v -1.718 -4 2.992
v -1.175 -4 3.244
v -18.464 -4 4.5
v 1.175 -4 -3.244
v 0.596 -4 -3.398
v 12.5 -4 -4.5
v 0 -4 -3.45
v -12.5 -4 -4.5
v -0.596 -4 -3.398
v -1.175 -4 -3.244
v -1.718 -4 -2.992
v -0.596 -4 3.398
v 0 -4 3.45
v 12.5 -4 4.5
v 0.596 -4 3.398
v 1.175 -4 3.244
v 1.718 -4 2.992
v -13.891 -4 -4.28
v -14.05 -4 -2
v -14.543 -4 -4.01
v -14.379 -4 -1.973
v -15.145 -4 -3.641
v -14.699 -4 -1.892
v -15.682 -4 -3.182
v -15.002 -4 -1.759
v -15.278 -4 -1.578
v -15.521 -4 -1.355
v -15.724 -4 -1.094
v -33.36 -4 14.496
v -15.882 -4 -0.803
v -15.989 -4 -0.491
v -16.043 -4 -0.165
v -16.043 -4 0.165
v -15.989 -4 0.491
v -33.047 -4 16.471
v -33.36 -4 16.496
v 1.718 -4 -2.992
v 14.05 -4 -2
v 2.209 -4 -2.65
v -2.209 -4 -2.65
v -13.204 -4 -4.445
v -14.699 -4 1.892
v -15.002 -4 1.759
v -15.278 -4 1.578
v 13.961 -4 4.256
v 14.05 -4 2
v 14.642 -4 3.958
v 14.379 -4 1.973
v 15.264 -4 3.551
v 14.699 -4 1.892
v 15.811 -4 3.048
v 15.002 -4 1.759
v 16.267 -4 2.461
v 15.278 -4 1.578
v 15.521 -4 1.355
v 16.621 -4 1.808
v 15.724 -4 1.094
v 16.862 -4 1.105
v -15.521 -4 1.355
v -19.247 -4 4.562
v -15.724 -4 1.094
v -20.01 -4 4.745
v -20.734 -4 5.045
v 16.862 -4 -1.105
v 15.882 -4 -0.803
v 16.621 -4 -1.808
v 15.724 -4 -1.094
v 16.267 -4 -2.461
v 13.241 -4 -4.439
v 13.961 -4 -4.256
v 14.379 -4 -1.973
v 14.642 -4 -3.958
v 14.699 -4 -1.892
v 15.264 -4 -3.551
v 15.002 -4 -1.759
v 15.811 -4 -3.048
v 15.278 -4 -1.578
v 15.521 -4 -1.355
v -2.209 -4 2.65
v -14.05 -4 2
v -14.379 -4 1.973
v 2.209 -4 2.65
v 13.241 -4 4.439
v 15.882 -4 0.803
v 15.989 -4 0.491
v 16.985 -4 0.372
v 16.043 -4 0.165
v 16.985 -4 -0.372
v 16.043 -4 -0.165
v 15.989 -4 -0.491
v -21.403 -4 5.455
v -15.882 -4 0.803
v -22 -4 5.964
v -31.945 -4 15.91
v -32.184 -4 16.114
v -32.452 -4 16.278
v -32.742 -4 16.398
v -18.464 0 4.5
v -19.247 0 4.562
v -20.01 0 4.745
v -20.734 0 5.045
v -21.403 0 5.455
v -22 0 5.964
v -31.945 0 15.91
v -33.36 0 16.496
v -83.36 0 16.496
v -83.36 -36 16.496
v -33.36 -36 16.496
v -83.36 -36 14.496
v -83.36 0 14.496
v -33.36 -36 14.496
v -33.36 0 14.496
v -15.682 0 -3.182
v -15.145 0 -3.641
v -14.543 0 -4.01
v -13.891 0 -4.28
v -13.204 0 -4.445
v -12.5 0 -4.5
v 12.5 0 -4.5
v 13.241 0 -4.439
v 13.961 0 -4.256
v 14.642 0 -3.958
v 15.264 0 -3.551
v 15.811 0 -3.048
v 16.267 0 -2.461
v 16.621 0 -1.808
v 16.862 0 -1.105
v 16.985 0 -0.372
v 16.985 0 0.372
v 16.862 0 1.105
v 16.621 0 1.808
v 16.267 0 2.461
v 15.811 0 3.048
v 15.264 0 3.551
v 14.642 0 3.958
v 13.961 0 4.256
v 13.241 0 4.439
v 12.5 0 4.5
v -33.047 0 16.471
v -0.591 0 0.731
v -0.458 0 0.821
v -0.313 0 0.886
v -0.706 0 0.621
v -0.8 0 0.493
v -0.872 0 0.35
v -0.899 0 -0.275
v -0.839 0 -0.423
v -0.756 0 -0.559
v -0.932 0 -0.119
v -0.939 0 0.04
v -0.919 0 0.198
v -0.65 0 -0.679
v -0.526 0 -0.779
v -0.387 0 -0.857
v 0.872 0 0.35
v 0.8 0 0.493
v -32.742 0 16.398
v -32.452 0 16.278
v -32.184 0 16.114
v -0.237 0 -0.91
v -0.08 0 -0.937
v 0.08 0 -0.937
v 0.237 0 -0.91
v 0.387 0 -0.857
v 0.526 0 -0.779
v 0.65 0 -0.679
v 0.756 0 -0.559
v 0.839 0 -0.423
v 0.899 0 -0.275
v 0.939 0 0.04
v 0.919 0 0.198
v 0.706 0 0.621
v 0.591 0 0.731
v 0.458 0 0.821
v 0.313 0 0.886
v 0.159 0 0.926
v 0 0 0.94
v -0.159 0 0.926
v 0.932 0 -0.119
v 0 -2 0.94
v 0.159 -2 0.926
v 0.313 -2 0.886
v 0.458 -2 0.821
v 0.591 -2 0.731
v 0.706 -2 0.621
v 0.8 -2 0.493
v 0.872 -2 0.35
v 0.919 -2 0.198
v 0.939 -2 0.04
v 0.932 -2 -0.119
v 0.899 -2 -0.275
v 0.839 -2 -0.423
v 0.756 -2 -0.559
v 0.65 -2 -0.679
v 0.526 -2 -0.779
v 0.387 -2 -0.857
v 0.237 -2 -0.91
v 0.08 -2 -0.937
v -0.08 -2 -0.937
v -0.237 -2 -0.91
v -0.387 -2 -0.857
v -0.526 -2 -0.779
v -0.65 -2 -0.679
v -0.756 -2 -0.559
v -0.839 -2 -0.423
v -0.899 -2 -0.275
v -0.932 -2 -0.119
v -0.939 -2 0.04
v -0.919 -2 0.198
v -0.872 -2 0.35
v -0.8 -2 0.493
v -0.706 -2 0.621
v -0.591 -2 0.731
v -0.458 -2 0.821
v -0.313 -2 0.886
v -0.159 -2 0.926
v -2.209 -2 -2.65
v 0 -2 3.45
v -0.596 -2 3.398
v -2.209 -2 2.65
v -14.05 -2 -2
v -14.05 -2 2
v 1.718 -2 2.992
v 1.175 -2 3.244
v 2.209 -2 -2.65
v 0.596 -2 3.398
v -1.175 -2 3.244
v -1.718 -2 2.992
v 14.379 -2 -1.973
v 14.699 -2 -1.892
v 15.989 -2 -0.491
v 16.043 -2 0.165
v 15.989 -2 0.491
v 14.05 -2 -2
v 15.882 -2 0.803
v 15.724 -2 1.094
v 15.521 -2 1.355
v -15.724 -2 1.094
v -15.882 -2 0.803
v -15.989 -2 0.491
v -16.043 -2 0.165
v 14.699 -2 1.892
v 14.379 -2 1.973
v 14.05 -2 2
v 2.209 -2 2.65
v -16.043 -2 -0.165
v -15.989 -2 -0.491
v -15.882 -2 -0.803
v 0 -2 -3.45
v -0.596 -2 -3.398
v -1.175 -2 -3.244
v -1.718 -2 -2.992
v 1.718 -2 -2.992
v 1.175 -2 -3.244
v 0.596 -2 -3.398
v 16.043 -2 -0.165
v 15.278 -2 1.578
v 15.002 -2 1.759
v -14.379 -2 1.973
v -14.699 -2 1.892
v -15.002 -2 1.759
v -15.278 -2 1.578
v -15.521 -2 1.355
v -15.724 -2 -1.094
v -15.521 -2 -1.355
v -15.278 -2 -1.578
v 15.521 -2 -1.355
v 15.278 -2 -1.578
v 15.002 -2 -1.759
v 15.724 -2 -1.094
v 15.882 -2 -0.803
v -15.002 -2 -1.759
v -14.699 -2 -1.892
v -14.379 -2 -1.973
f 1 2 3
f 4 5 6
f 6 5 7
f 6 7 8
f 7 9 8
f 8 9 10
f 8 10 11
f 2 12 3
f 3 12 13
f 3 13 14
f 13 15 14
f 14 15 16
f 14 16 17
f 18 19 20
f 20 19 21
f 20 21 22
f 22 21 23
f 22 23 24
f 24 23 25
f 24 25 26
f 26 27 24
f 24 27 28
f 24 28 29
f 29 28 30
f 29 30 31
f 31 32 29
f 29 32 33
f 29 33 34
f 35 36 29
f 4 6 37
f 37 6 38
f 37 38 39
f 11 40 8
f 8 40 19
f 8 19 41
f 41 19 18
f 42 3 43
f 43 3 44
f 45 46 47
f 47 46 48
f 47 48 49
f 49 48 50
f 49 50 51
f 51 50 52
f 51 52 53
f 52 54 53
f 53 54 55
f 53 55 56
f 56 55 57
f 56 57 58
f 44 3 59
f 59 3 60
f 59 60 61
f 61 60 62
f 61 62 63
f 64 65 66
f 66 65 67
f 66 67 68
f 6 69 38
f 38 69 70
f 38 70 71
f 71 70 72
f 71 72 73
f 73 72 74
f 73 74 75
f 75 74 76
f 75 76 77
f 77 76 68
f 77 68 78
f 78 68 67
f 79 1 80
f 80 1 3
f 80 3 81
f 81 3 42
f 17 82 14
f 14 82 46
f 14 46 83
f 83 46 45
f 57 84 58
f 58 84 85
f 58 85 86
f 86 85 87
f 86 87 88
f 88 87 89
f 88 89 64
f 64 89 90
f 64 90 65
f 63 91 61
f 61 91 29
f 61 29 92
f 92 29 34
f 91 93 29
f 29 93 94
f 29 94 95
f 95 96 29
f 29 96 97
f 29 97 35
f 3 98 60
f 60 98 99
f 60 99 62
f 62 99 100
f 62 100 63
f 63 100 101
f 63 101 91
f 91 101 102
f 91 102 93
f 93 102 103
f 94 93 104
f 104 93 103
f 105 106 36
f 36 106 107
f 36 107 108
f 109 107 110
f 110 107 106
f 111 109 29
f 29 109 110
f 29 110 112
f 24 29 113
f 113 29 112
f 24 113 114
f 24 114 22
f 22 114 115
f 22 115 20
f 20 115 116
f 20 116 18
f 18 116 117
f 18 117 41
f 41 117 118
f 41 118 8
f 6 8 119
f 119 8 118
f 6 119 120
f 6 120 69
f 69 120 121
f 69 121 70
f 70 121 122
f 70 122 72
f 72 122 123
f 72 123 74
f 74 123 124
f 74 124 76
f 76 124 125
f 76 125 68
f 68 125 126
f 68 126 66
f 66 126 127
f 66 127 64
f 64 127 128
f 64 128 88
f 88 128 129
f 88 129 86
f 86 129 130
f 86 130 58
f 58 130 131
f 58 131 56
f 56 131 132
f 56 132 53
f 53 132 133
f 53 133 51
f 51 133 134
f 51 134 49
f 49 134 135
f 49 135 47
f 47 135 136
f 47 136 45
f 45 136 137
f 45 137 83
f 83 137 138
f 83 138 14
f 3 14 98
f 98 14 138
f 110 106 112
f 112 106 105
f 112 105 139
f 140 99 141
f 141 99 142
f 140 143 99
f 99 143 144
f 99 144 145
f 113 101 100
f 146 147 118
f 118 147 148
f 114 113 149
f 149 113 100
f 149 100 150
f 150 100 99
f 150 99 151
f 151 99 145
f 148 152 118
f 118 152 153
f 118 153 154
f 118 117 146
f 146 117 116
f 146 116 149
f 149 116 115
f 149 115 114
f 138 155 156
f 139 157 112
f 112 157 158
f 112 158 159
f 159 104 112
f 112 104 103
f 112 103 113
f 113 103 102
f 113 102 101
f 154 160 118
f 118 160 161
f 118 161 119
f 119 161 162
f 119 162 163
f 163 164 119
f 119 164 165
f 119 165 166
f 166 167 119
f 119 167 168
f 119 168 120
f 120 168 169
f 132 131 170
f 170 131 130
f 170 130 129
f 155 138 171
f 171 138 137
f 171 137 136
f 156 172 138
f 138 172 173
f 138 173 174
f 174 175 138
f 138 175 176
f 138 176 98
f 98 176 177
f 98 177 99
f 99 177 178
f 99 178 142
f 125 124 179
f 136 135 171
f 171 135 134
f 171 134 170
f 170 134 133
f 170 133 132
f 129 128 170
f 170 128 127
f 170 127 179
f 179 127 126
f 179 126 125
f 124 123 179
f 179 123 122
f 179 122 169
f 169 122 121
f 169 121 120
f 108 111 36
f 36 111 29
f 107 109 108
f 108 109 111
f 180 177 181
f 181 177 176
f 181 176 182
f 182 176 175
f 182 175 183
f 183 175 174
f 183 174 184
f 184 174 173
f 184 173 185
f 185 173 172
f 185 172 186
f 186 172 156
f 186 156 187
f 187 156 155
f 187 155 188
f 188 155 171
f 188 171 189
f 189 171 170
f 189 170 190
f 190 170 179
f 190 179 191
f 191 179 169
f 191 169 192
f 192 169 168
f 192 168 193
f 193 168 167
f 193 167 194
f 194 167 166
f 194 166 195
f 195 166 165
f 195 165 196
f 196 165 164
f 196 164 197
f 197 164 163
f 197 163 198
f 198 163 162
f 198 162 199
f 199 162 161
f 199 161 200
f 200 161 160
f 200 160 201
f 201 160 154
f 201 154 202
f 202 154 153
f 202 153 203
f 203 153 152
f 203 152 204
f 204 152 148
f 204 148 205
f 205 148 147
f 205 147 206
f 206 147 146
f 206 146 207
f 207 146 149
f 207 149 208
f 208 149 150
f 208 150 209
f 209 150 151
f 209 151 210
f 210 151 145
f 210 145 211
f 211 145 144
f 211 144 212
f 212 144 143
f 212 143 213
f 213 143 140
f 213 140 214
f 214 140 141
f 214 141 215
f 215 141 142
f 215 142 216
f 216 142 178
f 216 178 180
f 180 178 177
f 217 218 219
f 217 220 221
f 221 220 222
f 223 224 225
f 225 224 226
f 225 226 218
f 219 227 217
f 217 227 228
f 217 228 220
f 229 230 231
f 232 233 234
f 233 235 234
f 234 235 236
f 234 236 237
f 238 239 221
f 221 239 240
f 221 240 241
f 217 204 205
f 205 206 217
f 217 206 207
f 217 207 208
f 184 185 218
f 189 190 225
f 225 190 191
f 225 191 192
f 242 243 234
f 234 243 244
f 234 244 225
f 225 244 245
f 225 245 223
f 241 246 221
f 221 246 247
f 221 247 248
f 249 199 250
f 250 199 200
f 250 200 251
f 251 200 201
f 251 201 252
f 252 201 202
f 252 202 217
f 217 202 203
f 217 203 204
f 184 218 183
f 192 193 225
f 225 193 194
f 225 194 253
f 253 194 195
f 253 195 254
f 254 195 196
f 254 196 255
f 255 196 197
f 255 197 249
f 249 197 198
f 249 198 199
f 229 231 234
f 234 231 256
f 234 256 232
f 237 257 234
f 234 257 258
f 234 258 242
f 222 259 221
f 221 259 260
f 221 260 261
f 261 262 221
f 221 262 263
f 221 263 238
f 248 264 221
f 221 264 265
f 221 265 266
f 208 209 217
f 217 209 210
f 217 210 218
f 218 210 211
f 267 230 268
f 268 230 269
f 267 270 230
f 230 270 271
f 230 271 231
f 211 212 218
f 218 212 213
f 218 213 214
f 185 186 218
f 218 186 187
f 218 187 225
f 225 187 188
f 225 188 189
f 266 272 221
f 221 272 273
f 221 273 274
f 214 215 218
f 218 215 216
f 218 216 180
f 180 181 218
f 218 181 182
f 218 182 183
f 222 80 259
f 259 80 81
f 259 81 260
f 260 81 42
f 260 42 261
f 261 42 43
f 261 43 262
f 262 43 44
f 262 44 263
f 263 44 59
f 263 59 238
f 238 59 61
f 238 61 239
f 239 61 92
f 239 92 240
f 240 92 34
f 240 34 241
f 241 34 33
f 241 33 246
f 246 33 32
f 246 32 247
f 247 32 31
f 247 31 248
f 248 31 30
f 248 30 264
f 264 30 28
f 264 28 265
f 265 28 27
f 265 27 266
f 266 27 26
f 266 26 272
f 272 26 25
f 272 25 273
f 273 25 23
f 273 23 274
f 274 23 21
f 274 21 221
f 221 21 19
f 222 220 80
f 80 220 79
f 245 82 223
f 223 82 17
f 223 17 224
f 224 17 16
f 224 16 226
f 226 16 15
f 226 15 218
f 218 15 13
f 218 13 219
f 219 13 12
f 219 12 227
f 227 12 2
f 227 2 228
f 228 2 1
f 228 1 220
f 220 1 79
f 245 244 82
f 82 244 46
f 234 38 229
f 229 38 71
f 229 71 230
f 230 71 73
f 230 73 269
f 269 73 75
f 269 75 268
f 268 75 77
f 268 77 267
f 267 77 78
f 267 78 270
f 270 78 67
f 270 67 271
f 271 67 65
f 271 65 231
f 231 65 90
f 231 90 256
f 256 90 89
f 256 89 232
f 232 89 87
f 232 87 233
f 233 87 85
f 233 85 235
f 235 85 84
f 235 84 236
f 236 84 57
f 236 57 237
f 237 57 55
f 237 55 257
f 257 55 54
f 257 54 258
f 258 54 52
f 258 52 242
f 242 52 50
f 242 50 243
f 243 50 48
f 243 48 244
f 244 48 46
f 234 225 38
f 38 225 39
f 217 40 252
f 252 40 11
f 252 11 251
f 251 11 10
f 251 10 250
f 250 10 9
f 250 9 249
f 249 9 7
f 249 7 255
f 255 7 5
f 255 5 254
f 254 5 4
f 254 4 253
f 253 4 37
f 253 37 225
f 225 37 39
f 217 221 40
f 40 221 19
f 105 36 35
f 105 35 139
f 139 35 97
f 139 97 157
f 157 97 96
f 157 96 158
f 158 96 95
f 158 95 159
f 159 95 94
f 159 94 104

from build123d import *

# Parameters (mm, degrees)
RESSALTO_EXTRUS_O1_DEPTH = 4
ESBO_O2_W                = 50
ESBO_O2_H                = 2
RESSALTO_EXTRUS_O2_DEPTH = 32
ESBO_O3_R                = 0.94
CORTE_EXTRUS_O1_DEPTH    = 37
CORTE_EXTRUS_O2_DEPTH    = 2
FILETE1_R                = 2


with BuildPart() as part:
    # Esboço1 → Ressalto-extrusão1 (new body)
    with BuildSketch(Plane(origin=(0, 0, 0), x_dir=(1, 0, 0), z_dir=(0, 1, 0))):
        with BuildLine():
            Line((12.5, 4.5), (-12.5, 4.5))
            ThreePointArc((-12.5, 4.5), (-14.222075446, 4.157457896), (-15.681980515, 3.181980515))
            Line((-15.681980515, 3.181980515), (-33.359650045, -14.495689014))
            Line((-33.359650045, -14.495689014), (-83.359650045, -14.495689014))
            Line((-83.359650045, -14.495689014), (-83.359650045, -16.495689014))
            Line((-83.359650045, -16.495689014), (-32.53122292, -16.495689014))
            Line((-32.53122292, -16.495689014), (-22, -5.964466094))
            ThreePointArc((-22, -5.964466094), (-20.377883256, -4.880602337), (-18.464466094, -4.5))
            Line((-18.464466094, -4.5), (12.5, -4.5))
            ThreePointArc((12.5, -4.5), (17, 0), (12.5, 4.5))
        make_face()
    extrude(amount=-RESSALTO_EXTRUS_O1_DEPTH)

    # Esboço2 → Ressalto-extrusão2 (add)
    with BuildSketch(Plane.XZ.offset(4)):
        with Locations((-58.359650045, 15.495689014)):
            Rectangle(ESBO_O2_W, ESBO_O2_H)
    extrude(amount=RESSALTO_EXTRUS_O2_DEPTH)

    # Esboço3 → Corte-extrusão1 (cut, through all)
    with BuildSketch(Plane(origin=(0, 0, 0), x_dir=(1, 0, 0), z_dir=(0, 1, 0))):
        Circle(ESBO_O3_R)
    extrude(amount=-CORTE_EXTRUS_O1_DEPTH, mode=Mode.SUBTRACT)

    # Esboço6 → Corte-extrusão2 (cut)
    with BuildSketch(Plane(origin=(0, -4, 0), x_dir=(1, 0, 0), z_dir=(0, 1, 0))):
        with BuildLine():
            Line((-14.05, 2), (-2.209072203, 2.65))
            ThreePointArc((-2.209072203, 2.65), (0, 3.45), (2.209072203, 2.65))
            Line((2.209072203, 2.65), (14.05, 2))
            ThreePointArc((14.05, 2), (16.05, 0), (14.05, -2))
            Line((14.05, -2), (2.209072203, -2.65))
            ThreePointArc((2.209072203, -2.65), (0, -3.45), (-2.209072203, -2.65))
            Line((-2.209072203, -2.65), (-14.05, -2))
            ThreePointArc((-14.05, -2), (-16.05, 0), (-14.05, 2))
        make_face()
    extrude(amount=CORTE_EXTRUS_O2_DEPTH, mode=Mode.SUBTRACT)

    # Filete1
    filete1_edges = [part.edges().sort_by_distance(p)[0] for p in [
        (-32.53122292, -2, 16.495689014),
    ]]
    fillet(filete1_edges, radius=FILETE1_R)


solid = part.part
